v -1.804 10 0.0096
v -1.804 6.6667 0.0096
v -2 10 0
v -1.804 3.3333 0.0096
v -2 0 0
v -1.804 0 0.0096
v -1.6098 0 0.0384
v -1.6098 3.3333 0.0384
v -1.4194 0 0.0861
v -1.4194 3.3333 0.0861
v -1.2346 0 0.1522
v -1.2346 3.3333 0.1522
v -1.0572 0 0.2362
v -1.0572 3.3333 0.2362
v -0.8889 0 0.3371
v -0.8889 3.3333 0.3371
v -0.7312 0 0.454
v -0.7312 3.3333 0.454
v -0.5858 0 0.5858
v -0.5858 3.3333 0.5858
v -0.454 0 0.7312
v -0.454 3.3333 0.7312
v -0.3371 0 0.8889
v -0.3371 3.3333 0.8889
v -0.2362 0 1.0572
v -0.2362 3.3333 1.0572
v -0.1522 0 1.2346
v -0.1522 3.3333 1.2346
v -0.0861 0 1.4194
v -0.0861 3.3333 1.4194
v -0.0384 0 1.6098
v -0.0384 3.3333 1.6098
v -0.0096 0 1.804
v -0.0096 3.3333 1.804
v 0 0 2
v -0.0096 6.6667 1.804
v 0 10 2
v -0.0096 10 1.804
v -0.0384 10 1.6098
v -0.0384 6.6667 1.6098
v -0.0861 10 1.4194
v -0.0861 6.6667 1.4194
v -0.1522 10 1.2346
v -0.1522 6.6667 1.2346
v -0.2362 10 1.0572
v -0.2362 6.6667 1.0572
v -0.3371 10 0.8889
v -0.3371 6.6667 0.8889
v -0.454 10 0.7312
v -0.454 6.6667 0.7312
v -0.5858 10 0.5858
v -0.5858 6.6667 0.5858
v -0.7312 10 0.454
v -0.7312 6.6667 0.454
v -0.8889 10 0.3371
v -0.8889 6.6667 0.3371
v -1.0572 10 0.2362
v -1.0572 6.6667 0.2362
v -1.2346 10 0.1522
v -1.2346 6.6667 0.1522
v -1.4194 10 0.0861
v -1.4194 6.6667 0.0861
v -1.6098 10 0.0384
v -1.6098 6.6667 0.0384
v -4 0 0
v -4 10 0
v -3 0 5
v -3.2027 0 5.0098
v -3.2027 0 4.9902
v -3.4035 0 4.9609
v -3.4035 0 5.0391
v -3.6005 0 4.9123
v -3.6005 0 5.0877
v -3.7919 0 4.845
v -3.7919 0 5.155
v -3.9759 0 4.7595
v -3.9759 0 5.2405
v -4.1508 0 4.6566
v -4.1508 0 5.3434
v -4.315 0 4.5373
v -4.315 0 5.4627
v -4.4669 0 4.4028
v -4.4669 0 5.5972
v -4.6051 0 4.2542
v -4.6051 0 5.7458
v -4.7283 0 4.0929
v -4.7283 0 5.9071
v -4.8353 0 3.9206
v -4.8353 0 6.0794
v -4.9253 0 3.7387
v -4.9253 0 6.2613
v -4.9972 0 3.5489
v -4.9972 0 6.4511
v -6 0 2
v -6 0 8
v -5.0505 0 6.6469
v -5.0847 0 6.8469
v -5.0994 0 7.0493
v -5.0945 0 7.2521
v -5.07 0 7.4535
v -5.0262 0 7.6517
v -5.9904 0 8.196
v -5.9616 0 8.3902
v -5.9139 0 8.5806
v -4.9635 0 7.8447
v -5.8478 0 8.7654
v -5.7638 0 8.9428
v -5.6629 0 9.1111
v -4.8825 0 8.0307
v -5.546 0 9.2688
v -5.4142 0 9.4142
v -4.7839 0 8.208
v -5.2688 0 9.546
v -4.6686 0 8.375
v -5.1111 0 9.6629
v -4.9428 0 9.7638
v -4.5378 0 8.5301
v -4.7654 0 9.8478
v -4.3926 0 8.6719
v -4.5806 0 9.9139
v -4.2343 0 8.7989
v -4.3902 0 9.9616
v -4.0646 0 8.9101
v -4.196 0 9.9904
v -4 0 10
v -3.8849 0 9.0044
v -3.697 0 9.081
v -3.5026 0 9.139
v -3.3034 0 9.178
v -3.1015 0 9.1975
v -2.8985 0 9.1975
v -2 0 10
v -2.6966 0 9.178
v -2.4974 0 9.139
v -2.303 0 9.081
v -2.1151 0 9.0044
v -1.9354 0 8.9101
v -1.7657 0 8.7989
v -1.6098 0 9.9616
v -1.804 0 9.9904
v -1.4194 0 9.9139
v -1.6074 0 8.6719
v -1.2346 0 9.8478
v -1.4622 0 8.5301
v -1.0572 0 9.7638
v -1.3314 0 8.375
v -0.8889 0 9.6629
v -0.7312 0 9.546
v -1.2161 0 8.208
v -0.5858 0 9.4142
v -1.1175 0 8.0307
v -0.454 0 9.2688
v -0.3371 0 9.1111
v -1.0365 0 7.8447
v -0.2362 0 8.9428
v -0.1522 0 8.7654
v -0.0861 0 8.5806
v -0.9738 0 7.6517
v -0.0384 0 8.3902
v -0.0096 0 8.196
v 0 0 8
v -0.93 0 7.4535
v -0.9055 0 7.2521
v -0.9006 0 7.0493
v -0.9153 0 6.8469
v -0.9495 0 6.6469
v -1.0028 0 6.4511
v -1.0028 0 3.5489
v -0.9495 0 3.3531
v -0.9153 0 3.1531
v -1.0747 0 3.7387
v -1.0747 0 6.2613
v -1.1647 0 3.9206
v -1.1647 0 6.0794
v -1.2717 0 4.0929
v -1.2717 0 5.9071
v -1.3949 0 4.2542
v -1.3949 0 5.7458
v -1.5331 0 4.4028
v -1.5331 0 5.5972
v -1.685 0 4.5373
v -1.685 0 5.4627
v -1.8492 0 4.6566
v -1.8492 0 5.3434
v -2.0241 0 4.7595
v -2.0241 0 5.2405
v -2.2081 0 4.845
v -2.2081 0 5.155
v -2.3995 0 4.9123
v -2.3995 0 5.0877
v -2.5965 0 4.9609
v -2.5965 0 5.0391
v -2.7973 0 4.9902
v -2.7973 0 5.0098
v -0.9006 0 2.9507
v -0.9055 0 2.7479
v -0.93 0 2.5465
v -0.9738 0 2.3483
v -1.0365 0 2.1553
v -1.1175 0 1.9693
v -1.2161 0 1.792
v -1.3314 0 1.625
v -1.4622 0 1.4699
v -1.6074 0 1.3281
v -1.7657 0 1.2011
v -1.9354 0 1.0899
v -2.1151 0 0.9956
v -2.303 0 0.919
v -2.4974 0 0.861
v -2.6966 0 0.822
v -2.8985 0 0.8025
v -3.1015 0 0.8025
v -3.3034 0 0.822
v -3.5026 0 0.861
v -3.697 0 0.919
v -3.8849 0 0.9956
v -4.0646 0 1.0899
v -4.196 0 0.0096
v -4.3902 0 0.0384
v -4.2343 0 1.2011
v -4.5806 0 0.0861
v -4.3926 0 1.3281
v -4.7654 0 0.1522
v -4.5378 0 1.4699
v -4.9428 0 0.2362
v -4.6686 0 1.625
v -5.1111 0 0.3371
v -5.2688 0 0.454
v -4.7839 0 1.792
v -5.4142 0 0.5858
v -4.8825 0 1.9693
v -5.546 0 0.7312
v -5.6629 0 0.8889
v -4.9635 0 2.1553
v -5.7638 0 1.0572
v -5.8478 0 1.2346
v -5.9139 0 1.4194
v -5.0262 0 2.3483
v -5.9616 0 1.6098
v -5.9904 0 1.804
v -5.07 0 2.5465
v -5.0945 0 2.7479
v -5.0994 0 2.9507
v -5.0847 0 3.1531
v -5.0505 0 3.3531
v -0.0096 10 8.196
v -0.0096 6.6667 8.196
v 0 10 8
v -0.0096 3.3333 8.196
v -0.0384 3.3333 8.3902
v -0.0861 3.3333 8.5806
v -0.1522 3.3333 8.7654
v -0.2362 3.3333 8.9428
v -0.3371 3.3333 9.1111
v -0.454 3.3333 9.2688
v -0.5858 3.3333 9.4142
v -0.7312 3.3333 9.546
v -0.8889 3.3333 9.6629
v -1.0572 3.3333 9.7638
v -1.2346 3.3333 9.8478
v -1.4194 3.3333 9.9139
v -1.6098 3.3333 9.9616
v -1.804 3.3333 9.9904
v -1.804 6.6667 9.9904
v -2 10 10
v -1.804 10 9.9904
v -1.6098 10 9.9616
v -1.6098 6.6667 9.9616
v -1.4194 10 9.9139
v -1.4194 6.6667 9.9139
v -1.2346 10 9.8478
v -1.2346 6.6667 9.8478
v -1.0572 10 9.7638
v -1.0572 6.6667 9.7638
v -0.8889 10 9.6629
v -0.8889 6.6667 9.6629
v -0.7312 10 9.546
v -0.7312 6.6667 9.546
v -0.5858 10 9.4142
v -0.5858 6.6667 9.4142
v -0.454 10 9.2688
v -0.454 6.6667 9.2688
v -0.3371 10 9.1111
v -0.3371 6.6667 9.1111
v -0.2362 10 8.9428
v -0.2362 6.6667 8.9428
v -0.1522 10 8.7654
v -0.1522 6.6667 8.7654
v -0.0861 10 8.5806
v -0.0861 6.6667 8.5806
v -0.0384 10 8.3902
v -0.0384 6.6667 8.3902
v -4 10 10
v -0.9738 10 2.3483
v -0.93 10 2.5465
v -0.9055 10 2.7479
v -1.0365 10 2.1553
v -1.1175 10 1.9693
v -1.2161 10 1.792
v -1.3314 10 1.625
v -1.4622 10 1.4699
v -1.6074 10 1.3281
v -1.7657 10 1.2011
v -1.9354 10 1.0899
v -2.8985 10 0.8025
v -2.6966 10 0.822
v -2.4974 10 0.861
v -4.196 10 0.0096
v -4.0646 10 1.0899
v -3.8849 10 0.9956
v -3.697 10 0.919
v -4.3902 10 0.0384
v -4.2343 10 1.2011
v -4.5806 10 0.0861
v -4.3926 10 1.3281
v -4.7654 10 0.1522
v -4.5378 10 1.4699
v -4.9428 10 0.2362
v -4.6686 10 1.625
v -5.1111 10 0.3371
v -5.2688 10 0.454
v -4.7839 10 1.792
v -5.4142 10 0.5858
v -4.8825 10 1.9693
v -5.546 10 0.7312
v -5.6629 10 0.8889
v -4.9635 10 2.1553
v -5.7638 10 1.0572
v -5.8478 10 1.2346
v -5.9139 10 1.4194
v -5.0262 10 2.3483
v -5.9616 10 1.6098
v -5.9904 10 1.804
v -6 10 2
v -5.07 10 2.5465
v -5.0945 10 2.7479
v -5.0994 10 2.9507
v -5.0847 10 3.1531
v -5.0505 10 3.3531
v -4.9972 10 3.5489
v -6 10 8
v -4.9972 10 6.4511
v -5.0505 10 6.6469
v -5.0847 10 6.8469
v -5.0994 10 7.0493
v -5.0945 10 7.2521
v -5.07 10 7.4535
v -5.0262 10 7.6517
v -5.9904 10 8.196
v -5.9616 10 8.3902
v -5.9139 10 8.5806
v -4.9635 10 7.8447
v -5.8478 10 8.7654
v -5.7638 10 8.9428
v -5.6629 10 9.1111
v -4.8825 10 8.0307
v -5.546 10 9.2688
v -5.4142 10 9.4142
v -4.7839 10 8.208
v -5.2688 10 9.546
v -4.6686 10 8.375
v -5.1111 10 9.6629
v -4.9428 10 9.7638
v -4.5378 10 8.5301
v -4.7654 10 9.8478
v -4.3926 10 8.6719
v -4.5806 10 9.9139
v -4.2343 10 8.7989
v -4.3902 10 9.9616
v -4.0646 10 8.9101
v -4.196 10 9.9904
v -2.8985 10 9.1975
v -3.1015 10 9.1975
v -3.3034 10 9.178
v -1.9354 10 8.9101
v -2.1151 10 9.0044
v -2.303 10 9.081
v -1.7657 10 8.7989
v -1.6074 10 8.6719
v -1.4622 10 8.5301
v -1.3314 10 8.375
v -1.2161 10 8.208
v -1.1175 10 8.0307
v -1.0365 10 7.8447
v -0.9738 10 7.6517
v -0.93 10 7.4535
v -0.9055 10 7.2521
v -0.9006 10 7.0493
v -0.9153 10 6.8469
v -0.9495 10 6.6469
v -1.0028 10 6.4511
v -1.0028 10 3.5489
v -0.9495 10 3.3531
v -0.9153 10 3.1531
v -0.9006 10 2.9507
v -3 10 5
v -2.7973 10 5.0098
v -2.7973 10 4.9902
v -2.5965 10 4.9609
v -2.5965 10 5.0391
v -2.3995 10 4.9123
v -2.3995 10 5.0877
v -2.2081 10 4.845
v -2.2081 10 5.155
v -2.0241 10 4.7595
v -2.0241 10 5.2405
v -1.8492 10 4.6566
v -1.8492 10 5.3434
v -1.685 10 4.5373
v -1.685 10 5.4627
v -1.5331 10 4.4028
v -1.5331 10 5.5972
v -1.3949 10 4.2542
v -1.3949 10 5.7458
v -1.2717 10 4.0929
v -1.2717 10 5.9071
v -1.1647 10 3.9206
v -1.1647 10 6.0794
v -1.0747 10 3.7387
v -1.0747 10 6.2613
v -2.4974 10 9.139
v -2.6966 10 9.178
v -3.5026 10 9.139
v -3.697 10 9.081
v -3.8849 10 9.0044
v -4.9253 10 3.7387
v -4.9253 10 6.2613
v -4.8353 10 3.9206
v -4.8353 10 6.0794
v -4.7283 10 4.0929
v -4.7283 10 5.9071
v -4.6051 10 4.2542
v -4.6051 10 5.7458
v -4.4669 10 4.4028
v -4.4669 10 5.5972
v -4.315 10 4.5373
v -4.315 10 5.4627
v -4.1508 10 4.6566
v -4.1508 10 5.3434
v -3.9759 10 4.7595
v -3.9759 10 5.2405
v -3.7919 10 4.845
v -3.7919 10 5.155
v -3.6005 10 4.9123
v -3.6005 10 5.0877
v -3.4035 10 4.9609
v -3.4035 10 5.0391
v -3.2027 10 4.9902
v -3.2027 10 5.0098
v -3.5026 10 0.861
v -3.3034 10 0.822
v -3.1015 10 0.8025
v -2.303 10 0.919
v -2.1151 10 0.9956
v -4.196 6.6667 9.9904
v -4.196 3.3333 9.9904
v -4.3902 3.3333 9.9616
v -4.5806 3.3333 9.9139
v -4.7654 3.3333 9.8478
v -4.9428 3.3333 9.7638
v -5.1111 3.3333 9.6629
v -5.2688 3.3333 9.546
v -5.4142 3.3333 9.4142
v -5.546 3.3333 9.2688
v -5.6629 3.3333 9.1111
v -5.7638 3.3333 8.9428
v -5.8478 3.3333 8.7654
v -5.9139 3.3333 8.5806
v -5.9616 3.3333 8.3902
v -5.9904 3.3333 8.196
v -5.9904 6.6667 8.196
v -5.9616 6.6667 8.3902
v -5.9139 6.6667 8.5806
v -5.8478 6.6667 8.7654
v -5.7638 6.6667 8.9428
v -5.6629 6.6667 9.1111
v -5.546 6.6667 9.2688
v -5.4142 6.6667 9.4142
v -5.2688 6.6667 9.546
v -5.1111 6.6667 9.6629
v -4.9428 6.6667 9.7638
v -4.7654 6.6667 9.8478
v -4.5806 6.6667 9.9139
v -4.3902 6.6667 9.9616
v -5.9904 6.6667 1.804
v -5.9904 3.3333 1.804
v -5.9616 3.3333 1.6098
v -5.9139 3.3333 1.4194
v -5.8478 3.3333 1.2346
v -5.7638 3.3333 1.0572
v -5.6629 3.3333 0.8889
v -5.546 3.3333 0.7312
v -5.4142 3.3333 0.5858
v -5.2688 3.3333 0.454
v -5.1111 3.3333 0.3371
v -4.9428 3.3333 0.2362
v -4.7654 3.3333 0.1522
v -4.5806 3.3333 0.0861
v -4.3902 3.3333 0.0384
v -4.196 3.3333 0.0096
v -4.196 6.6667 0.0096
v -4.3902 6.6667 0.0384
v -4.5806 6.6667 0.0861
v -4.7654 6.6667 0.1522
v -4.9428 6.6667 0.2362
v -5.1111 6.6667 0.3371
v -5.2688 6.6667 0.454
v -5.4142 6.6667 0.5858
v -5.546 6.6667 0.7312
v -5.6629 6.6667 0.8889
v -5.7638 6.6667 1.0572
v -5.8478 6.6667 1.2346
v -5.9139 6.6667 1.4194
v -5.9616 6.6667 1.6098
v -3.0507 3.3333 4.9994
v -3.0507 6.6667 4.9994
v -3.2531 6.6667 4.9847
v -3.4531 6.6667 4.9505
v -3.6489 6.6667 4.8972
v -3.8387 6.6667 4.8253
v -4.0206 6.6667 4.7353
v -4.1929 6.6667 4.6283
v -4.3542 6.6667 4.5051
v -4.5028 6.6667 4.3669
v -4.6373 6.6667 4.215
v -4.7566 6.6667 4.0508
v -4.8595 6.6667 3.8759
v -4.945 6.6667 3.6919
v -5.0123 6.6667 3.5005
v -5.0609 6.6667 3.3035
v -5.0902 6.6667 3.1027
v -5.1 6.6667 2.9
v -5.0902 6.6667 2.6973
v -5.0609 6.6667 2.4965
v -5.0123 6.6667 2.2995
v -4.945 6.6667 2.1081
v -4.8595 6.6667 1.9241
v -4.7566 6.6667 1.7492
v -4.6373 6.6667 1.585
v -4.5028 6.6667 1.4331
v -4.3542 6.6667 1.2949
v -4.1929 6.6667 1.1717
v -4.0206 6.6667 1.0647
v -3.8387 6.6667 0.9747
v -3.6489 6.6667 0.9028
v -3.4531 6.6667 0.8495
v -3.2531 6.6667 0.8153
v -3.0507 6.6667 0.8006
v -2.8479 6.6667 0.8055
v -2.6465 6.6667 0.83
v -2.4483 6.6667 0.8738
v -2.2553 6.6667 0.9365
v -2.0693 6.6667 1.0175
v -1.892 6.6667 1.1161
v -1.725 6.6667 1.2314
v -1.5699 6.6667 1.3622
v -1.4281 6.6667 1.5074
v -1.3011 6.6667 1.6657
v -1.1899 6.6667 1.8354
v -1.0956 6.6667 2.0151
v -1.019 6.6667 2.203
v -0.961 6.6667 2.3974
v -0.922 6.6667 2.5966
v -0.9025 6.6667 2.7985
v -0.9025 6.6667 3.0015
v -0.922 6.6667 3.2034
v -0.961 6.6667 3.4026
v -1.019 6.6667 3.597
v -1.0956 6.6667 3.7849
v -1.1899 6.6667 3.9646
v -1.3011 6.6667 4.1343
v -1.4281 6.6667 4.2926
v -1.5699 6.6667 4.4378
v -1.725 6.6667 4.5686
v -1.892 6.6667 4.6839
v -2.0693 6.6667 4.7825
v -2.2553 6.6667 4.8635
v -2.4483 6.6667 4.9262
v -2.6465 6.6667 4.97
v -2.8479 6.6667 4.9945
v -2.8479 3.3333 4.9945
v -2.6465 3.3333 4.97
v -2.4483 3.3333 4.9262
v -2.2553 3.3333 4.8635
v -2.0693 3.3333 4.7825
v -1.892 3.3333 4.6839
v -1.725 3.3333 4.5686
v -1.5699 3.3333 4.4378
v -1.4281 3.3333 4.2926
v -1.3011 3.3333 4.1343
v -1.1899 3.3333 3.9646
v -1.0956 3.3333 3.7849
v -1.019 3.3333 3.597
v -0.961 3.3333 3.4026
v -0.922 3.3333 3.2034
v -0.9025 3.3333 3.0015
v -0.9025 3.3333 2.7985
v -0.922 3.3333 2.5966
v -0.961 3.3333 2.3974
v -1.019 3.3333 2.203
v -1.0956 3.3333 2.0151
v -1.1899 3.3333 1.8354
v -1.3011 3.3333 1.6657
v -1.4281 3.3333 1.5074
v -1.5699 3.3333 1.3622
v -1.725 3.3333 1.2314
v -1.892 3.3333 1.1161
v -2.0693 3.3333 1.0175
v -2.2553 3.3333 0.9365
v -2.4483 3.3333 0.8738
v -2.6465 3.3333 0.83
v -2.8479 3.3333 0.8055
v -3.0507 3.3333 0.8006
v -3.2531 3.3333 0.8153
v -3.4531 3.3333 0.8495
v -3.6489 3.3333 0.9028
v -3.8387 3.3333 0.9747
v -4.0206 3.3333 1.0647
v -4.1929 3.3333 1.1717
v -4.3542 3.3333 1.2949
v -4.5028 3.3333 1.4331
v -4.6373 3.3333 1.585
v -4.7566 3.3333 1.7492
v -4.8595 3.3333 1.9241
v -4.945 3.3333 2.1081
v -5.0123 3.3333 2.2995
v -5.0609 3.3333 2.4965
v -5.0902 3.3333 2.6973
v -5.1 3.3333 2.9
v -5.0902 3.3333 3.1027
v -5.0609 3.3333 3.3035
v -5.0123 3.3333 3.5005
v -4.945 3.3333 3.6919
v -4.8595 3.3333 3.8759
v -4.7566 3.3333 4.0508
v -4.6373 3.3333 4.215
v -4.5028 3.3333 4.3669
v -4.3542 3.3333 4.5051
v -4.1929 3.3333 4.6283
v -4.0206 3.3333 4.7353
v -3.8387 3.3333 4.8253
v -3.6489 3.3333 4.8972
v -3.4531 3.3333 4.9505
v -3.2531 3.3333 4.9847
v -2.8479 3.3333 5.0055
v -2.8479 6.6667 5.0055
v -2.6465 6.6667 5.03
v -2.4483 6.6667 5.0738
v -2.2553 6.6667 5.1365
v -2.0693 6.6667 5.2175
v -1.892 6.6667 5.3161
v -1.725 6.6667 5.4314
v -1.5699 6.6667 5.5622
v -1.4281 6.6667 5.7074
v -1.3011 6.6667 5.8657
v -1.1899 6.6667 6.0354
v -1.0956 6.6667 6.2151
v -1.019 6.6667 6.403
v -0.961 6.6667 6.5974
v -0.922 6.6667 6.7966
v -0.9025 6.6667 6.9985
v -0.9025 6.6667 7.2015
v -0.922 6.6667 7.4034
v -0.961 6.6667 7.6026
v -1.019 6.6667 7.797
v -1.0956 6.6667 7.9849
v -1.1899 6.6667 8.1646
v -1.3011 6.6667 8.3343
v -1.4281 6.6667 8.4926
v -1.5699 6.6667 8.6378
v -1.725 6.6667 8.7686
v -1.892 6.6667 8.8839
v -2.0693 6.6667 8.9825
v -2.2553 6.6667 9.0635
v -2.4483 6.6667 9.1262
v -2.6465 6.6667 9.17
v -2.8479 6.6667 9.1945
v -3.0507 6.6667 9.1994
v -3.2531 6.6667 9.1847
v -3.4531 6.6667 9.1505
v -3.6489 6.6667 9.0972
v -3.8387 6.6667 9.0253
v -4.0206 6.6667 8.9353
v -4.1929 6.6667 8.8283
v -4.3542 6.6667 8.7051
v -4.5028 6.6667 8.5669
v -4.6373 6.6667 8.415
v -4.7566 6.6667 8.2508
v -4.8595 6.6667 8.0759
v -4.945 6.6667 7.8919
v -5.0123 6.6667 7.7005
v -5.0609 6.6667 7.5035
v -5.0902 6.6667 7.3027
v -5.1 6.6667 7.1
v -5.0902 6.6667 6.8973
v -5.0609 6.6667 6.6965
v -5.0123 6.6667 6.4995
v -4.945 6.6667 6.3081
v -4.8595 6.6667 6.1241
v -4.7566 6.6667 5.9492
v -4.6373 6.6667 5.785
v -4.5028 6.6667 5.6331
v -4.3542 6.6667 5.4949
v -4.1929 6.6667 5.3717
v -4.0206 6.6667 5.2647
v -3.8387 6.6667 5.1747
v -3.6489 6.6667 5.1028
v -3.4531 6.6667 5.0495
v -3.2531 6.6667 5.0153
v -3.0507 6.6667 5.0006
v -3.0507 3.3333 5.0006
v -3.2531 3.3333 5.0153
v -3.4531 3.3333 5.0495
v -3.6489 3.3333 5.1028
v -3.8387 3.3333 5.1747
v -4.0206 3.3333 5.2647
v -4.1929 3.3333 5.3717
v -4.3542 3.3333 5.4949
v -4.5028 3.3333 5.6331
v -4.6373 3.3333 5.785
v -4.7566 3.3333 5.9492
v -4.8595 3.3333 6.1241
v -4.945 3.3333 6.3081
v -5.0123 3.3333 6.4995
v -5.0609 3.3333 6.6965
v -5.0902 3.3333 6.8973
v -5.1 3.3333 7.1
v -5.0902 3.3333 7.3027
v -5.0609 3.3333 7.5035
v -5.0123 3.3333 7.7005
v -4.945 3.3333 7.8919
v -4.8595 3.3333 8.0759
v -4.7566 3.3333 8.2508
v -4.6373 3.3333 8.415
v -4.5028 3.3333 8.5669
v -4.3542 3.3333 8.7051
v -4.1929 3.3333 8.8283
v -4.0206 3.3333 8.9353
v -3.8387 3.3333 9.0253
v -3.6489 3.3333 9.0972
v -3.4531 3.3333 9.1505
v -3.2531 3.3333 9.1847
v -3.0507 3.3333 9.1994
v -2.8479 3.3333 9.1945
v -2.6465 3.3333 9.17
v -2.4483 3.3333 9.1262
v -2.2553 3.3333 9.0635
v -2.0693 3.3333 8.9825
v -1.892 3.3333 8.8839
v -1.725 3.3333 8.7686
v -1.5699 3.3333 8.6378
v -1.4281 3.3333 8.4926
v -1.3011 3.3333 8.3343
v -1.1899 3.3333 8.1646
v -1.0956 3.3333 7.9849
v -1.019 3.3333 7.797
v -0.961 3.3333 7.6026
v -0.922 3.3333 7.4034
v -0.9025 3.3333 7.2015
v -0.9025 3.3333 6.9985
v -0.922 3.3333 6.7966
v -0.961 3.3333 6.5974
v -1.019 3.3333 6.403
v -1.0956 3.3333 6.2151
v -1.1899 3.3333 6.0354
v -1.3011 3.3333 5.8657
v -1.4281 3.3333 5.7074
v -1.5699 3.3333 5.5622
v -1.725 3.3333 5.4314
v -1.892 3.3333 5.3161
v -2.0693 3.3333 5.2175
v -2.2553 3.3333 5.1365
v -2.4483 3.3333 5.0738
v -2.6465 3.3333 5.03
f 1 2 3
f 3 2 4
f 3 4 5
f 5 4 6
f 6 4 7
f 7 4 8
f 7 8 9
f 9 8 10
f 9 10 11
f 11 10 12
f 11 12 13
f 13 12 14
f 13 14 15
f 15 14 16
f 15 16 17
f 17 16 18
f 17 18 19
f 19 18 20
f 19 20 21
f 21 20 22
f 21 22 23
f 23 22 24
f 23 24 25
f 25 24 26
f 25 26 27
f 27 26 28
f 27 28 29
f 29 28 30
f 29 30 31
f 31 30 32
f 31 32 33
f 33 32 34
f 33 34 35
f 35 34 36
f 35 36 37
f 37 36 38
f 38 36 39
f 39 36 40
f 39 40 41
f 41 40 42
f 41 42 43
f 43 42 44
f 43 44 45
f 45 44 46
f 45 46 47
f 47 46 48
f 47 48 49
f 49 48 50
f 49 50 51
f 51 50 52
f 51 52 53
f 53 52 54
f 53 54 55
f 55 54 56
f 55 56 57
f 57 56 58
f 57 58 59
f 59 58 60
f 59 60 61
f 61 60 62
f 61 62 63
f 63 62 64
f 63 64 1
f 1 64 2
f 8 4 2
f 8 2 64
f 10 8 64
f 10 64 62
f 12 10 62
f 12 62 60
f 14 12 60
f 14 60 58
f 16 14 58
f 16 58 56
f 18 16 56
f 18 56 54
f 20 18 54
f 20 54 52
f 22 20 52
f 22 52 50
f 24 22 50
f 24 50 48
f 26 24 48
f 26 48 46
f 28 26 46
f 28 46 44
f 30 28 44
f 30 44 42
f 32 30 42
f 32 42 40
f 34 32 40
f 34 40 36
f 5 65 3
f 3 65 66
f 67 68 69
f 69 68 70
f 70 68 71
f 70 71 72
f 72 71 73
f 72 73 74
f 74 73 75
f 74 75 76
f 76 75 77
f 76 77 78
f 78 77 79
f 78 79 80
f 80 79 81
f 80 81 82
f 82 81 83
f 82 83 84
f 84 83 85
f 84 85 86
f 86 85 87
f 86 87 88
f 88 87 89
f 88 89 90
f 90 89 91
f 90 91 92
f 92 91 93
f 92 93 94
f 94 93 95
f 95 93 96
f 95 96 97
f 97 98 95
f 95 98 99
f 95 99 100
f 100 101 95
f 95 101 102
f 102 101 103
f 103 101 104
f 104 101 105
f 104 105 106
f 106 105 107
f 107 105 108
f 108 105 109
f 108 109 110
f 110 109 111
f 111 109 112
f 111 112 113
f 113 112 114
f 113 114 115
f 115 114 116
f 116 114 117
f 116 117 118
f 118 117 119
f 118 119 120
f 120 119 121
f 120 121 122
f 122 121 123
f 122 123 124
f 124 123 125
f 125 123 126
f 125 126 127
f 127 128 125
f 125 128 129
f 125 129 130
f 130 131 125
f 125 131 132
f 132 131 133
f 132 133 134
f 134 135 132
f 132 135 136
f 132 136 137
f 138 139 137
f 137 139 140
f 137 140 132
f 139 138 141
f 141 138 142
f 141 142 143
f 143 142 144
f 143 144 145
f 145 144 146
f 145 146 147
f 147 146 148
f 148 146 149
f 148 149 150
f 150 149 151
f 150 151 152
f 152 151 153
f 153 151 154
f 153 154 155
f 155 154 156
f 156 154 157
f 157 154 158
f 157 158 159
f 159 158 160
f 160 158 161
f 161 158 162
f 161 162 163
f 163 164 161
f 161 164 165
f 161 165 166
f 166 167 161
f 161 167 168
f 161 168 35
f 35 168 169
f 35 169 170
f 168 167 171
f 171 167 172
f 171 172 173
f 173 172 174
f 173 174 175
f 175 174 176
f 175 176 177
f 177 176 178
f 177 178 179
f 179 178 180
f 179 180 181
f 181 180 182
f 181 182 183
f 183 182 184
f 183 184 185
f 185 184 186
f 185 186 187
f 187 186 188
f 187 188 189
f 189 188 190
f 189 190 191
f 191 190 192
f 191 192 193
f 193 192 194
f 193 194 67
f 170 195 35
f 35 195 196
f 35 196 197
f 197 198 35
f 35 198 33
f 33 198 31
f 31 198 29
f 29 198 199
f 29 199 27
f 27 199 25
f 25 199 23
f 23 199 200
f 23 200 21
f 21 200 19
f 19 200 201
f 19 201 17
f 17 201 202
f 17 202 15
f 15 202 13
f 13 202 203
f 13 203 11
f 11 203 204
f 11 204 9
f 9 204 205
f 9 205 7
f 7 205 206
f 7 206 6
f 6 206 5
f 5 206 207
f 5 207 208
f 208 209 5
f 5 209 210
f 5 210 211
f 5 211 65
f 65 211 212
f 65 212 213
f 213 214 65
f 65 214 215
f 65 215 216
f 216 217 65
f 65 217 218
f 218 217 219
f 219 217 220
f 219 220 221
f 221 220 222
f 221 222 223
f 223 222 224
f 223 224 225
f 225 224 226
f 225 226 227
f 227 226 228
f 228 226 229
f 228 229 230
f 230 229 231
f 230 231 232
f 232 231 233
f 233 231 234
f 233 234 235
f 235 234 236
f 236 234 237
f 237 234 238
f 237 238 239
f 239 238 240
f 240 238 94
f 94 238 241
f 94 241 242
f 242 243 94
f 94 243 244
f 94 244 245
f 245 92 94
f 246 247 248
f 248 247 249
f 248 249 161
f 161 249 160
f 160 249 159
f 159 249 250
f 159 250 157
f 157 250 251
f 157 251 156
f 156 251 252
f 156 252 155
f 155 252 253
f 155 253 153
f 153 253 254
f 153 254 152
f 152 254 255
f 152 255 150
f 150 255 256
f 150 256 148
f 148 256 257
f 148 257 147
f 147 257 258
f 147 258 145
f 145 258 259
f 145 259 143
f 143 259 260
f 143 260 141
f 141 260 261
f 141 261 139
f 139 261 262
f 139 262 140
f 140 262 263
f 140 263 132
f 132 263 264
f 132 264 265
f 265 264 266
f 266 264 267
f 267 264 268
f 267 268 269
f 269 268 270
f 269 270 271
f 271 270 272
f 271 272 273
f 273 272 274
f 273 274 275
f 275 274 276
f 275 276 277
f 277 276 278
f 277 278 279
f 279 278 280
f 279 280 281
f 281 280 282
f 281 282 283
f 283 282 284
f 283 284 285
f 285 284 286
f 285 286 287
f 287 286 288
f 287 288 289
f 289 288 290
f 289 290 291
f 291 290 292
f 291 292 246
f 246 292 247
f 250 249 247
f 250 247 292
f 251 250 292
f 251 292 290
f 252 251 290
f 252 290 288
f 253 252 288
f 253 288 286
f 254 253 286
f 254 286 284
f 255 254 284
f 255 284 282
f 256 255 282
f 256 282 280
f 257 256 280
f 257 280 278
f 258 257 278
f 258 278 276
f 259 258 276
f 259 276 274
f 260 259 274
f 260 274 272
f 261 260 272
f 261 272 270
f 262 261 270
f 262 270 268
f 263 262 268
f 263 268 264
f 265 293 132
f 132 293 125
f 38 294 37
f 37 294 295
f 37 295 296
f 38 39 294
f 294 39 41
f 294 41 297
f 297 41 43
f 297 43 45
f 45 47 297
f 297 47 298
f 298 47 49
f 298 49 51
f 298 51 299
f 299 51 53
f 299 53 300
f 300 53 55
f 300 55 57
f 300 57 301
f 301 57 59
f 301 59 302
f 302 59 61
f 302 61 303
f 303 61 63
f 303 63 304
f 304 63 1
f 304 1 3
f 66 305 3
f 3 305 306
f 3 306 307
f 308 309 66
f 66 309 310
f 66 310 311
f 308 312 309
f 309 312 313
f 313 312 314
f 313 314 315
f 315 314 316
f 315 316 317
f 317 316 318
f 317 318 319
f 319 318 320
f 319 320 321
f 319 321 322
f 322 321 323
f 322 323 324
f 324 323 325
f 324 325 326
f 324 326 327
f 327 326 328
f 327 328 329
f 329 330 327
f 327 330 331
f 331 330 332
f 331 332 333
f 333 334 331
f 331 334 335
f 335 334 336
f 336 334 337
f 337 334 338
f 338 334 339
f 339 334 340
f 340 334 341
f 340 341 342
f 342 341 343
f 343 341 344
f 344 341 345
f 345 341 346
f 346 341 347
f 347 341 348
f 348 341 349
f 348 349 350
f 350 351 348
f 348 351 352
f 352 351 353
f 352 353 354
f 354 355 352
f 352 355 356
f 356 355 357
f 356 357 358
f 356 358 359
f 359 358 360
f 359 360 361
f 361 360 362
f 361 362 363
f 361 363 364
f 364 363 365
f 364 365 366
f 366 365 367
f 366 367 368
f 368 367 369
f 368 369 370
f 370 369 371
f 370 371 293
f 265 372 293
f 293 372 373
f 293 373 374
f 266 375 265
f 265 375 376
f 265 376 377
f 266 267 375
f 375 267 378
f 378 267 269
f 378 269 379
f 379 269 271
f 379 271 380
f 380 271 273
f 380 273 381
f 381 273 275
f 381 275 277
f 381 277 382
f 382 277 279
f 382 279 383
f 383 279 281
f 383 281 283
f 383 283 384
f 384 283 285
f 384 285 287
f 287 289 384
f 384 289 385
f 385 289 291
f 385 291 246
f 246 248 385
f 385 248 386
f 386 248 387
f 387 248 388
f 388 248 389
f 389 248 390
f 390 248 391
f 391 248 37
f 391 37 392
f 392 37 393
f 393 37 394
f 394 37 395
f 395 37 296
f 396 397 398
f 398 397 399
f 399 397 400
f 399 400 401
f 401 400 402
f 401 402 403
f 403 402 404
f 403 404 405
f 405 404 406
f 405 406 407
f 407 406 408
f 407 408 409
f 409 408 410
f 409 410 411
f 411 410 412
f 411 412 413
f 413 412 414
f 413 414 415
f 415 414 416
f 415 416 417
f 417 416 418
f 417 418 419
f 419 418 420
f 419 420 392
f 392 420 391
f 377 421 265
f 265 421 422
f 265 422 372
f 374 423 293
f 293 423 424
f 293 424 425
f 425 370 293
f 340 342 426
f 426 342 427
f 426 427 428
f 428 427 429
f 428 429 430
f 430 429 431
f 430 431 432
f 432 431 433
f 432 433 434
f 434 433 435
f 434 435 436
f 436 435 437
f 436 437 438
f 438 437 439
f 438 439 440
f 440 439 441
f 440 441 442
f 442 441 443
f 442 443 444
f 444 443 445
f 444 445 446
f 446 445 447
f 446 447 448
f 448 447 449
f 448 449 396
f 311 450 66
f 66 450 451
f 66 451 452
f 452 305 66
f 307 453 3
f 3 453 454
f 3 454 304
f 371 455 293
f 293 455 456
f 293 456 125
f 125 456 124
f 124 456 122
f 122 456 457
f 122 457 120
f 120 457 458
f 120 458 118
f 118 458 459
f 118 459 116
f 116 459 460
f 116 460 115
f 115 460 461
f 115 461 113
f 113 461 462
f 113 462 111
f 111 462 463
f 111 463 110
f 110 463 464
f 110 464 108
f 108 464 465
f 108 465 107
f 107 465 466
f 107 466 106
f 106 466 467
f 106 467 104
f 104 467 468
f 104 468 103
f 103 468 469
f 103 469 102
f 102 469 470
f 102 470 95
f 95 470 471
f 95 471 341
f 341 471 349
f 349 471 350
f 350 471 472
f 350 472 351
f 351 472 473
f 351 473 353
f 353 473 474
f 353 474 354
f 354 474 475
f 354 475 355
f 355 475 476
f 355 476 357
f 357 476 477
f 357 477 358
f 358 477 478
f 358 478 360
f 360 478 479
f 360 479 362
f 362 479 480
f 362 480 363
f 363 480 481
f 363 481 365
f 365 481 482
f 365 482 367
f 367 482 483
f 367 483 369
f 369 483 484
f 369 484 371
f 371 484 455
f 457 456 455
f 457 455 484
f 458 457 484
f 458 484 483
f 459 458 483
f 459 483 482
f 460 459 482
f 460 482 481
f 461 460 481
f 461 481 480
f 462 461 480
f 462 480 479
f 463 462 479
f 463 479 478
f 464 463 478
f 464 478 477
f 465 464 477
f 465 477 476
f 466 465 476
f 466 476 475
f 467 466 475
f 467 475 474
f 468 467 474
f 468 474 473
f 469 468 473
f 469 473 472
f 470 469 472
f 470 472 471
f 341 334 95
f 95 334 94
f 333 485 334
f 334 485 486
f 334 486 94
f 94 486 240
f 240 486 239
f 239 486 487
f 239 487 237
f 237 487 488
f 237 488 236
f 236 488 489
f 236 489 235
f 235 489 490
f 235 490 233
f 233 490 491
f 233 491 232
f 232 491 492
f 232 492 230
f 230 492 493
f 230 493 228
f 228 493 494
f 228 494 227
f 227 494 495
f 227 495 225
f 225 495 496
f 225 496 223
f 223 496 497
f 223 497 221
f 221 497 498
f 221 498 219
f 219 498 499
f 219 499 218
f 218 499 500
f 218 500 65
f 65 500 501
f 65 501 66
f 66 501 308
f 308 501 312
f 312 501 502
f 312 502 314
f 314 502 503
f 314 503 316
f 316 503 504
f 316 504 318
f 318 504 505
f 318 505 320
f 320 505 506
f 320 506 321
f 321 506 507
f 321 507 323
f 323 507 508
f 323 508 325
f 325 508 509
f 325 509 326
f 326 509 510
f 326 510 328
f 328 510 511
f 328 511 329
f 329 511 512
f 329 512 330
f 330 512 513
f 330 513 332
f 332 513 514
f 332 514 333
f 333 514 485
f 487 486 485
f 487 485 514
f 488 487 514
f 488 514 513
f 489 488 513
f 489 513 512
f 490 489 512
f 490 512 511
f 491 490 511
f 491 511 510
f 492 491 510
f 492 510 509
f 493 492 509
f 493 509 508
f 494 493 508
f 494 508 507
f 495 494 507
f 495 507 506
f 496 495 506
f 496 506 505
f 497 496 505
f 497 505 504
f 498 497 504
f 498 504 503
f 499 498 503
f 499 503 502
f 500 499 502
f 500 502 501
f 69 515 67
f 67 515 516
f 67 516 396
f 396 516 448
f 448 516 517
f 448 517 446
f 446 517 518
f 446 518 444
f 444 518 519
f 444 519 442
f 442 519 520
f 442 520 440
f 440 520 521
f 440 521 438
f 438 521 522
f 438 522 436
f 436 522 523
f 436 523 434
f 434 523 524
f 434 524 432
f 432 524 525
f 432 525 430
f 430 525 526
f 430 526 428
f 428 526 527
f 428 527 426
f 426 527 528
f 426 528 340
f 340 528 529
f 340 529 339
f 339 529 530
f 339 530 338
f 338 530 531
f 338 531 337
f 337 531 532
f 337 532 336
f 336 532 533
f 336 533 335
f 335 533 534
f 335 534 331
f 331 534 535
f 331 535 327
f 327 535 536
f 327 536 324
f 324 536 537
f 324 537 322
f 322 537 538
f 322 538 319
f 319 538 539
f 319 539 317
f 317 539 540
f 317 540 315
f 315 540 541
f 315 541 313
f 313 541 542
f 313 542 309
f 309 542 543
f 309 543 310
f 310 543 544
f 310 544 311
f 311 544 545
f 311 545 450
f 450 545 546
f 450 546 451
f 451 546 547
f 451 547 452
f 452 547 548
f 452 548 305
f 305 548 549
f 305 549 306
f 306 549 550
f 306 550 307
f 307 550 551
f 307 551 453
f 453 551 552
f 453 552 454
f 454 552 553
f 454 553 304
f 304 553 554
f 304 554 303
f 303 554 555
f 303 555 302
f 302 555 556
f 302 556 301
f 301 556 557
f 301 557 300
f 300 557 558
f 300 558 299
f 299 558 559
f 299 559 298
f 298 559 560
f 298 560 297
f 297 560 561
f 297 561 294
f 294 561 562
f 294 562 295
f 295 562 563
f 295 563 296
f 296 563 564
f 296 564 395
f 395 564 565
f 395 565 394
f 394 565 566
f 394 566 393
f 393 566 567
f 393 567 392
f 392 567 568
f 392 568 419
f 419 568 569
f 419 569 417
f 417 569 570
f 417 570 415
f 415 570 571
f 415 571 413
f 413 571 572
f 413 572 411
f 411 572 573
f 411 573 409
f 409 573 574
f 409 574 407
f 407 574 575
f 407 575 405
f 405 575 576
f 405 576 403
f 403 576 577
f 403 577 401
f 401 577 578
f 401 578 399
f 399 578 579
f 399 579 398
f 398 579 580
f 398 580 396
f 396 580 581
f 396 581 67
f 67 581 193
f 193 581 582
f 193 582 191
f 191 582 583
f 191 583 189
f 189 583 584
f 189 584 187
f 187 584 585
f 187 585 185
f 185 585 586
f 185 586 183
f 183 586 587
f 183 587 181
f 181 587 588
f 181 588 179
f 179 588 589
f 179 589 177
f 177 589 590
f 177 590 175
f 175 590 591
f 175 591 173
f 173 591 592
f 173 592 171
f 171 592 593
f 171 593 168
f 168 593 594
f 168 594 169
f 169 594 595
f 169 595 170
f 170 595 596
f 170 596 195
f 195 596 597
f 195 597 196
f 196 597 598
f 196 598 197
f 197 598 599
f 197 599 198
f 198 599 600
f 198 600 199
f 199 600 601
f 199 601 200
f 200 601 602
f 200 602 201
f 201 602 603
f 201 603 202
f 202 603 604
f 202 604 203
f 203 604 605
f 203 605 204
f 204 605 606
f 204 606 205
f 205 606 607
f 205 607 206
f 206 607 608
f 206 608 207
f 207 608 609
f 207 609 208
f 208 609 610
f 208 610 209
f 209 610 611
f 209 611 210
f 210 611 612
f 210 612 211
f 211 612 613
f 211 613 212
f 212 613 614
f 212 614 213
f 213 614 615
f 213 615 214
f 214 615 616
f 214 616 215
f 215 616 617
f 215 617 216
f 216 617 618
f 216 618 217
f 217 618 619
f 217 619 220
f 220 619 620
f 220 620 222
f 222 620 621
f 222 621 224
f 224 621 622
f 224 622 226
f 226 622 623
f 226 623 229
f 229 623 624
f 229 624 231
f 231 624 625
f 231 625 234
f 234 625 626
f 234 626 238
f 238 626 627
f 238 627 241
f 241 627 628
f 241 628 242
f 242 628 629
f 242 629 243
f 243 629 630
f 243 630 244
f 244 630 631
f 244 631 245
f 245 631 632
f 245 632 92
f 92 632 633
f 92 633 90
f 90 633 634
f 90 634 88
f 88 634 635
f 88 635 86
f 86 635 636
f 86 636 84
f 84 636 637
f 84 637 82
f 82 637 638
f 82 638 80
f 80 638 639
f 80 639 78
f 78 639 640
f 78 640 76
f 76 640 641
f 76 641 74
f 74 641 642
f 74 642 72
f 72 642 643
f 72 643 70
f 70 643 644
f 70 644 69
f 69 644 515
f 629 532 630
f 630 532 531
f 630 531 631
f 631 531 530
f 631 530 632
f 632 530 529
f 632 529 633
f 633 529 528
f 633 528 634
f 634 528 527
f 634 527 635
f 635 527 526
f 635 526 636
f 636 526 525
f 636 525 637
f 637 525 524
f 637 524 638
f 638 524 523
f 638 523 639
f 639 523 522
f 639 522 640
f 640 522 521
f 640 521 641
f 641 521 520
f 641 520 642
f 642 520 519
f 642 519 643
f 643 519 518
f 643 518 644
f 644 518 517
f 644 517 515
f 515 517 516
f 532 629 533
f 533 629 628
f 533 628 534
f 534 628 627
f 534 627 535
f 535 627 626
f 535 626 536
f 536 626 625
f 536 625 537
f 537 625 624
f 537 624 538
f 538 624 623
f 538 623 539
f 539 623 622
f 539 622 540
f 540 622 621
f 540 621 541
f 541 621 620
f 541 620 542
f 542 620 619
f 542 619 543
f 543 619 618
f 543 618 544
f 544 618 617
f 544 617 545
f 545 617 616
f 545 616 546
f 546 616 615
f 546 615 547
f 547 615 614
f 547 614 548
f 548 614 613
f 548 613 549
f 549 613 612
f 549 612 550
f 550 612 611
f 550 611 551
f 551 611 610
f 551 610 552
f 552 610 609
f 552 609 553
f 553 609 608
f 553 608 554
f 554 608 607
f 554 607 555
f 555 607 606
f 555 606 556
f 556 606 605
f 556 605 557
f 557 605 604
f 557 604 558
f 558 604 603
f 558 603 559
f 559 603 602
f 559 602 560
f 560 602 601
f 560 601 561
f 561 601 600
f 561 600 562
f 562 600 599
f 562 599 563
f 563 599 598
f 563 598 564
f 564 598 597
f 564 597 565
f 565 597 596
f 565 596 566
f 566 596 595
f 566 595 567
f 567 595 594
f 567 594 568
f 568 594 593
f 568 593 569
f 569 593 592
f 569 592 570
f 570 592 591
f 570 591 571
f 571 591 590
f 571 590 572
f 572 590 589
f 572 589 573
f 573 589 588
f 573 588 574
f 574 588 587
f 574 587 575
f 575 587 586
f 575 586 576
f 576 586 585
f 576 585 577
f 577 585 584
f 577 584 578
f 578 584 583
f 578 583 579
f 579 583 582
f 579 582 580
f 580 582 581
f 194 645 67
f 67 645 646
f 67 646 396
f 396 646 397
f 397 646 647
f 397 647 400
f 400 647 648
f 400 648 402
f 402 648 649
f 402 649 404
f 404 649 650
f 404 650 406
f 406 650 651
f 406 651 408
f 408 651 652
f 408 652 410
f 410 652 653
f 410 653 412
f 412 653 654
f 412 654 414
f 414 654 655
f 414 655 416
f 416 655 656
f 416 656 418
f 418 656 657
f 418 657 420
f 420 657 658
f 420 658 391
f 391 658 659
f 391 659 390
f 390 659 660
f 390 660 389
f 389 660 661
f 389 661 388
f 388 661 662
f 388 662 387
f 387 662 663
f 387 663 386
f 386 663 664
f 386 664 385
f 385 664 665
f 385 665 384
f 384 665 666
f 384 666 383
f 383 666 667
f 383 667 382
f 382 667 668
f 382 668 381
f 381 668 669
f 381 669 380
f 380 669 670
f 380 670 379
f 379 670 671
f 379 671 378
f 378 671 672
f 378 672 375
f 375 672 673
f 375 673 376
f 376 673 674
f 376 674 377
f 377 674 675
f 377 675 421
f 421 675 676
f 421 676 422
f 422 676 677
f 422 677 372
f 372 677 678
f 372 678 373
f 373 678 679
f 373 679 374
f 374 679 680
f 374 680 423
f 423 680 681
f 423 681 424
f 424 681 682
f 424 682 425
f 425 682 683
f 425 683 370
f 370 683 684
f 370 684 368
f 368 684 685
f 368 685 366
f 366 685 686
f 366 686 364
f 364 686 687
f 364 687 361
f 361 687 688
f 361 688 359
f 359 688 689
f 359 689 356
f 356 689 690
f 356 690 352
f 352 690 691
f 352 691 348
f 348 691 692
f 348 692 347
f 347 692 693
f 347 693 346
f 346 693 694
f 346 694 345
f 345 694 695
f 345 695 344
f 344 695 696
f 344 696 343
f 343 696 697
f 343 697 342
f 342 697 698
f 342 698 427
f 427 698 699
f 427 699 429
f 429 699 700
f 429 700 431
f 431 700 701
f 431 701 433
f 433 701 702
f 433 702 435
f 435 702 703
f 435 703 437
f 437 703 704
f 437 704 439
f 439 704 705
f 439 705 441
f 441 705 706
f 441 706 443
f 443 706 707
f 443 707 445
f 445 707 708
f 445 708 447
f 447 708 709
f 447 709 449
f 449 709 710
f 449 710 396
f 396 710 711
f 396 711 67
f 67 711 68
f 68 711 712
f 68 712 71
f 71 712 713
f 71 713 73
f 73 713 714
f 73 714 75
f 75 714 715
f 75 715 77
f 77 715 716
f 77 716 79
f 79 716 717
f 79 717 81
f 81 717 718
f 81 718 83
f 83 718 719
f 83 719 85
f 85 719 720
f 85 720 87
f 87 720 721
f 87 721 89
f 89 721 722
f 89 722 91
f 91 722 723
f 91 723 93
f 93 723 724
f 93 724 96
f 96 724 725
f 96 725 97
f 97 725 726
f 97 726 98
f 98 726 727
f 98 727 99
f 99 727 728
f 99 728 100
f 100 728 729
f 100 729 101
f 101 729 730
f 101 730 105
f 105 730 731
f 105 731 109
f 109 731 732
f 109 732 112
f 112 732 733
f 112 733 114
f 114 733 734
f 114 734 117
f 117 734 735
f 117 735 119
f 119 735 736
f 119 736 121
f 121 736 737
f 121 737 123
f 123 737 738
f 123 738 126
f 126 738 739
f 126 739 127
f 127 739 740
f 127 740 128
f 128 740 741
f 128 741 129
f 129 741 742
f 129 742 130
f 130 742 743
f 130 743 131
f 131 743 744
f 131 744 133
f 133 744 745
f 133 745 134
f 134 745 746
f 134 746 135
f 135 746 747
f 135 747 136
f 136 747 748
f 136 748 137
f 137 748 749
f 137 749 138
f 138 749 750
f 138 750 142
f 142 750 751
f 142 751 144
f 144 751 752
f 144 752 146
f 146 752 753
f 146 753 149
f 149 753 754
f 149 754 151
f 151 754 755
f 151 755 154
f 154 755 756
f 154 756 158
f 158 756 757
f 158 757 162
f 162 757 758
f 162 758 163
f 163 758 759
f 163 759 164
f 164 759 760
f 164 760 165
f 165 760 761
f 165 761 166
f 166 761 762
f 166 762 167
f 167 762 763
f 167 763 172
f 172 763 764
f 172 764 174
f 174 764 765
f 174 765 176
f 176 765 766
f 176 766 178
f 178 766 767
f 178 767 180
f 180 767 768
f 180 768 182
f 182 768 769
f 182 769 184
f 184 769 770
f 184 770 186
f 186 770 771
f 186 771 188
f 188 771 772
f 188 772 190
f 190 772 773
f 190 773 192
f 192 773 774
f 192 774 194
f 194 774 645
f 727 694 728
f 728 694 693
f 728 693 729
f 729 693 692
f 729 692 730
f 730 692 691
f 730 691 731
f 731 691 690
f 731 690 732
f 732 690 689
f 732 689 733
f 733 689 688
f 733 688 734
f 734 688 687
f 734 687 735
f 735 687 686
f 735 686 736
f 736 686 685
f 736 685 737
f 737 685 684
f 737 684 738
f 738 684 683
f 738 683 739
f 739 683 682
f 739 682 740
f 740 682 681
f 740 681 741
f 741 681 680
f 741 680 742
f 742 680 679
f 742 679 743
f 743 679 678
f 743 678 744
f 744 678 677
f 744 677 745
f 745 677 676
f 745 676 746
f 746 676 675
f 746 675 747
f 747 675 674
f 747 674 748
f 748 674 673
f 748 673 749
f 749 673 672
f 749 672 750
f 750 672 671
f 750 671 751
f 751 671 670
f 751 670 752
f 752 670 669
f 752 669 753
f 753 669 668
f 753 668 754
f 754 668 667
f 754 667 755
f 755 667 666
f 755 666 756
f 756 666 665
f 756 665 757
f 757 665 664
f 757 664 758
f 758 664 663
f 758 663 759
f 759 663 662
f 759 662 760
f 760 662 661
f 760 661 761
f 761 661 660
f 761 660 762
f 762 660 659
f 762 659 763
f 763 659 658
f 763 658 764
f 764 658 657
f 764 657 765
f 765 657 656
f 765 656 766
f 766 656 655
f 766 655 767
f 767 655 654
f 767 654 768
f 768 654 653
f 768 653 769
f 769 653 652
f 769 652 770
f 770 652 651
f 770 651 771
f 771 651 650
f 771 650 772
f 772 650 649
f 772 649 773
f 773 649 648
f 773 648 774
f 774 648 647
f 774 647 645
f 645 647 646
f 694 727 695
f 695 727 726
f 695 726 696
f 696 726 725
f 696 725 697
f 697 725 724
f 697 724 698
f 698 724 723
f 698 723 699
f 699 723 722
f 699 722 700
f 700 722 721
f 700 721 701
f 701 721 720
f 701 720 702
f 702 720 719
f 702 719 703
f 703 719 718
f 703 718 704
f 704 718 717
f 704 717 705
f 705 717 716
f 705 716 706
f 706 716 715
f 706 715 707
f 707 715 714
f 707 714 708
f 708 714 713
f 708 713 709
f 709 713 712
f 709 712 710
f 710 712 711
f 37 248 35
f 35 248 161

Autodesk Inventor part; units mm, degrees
ref_plane "YZ Plane" through (0, 0, 0) normal (1, 0, 0) x (0, 1, 0)
ref_plane "XZ Plane" through (0, 0, 0) normal (0, 1, 0) x (-1, 0, 0)
ref_plane "XY Plane" through (0, 0, 0) normal (0, 0, 1) x (1, 0, 0)
sketch "Skizze1" plane through (0, 0, 0) normal (0, 1, 0) x (-1, 0, 0)
  line L0 (0, 0) -> (6, 0)
  line L1 (6, 0) -> (6, 10)
  line L2 (6, 10) -> (0, 10)
  line L3 (0, 10) -> (0, 0)
  circle A0 centre (3, 2.9) radius 2.1
  circle A1 centre (3, 7.1) radius 2.1
  dimension "d0" = 6
  dimension "d1" = 10
  dimension "d2" = 4.2
  dimension "d3" = 4.2
  dimension "d4" = 2.9
  dimension "d5" = 2.9
  dimension "d6" = 3
  dimension "d7" = 3
extrude "Extrusion1" add sketch "Skizze1" along normal blind 10
fillet "Rundung1" radius 2 4 edges at (-6, 5, 0) (-6, 5, 10) (0, 5, 10) (0, 5, 0)
equation "\"d7\" = d6"
properties part number "bowden_tube_combiner"
